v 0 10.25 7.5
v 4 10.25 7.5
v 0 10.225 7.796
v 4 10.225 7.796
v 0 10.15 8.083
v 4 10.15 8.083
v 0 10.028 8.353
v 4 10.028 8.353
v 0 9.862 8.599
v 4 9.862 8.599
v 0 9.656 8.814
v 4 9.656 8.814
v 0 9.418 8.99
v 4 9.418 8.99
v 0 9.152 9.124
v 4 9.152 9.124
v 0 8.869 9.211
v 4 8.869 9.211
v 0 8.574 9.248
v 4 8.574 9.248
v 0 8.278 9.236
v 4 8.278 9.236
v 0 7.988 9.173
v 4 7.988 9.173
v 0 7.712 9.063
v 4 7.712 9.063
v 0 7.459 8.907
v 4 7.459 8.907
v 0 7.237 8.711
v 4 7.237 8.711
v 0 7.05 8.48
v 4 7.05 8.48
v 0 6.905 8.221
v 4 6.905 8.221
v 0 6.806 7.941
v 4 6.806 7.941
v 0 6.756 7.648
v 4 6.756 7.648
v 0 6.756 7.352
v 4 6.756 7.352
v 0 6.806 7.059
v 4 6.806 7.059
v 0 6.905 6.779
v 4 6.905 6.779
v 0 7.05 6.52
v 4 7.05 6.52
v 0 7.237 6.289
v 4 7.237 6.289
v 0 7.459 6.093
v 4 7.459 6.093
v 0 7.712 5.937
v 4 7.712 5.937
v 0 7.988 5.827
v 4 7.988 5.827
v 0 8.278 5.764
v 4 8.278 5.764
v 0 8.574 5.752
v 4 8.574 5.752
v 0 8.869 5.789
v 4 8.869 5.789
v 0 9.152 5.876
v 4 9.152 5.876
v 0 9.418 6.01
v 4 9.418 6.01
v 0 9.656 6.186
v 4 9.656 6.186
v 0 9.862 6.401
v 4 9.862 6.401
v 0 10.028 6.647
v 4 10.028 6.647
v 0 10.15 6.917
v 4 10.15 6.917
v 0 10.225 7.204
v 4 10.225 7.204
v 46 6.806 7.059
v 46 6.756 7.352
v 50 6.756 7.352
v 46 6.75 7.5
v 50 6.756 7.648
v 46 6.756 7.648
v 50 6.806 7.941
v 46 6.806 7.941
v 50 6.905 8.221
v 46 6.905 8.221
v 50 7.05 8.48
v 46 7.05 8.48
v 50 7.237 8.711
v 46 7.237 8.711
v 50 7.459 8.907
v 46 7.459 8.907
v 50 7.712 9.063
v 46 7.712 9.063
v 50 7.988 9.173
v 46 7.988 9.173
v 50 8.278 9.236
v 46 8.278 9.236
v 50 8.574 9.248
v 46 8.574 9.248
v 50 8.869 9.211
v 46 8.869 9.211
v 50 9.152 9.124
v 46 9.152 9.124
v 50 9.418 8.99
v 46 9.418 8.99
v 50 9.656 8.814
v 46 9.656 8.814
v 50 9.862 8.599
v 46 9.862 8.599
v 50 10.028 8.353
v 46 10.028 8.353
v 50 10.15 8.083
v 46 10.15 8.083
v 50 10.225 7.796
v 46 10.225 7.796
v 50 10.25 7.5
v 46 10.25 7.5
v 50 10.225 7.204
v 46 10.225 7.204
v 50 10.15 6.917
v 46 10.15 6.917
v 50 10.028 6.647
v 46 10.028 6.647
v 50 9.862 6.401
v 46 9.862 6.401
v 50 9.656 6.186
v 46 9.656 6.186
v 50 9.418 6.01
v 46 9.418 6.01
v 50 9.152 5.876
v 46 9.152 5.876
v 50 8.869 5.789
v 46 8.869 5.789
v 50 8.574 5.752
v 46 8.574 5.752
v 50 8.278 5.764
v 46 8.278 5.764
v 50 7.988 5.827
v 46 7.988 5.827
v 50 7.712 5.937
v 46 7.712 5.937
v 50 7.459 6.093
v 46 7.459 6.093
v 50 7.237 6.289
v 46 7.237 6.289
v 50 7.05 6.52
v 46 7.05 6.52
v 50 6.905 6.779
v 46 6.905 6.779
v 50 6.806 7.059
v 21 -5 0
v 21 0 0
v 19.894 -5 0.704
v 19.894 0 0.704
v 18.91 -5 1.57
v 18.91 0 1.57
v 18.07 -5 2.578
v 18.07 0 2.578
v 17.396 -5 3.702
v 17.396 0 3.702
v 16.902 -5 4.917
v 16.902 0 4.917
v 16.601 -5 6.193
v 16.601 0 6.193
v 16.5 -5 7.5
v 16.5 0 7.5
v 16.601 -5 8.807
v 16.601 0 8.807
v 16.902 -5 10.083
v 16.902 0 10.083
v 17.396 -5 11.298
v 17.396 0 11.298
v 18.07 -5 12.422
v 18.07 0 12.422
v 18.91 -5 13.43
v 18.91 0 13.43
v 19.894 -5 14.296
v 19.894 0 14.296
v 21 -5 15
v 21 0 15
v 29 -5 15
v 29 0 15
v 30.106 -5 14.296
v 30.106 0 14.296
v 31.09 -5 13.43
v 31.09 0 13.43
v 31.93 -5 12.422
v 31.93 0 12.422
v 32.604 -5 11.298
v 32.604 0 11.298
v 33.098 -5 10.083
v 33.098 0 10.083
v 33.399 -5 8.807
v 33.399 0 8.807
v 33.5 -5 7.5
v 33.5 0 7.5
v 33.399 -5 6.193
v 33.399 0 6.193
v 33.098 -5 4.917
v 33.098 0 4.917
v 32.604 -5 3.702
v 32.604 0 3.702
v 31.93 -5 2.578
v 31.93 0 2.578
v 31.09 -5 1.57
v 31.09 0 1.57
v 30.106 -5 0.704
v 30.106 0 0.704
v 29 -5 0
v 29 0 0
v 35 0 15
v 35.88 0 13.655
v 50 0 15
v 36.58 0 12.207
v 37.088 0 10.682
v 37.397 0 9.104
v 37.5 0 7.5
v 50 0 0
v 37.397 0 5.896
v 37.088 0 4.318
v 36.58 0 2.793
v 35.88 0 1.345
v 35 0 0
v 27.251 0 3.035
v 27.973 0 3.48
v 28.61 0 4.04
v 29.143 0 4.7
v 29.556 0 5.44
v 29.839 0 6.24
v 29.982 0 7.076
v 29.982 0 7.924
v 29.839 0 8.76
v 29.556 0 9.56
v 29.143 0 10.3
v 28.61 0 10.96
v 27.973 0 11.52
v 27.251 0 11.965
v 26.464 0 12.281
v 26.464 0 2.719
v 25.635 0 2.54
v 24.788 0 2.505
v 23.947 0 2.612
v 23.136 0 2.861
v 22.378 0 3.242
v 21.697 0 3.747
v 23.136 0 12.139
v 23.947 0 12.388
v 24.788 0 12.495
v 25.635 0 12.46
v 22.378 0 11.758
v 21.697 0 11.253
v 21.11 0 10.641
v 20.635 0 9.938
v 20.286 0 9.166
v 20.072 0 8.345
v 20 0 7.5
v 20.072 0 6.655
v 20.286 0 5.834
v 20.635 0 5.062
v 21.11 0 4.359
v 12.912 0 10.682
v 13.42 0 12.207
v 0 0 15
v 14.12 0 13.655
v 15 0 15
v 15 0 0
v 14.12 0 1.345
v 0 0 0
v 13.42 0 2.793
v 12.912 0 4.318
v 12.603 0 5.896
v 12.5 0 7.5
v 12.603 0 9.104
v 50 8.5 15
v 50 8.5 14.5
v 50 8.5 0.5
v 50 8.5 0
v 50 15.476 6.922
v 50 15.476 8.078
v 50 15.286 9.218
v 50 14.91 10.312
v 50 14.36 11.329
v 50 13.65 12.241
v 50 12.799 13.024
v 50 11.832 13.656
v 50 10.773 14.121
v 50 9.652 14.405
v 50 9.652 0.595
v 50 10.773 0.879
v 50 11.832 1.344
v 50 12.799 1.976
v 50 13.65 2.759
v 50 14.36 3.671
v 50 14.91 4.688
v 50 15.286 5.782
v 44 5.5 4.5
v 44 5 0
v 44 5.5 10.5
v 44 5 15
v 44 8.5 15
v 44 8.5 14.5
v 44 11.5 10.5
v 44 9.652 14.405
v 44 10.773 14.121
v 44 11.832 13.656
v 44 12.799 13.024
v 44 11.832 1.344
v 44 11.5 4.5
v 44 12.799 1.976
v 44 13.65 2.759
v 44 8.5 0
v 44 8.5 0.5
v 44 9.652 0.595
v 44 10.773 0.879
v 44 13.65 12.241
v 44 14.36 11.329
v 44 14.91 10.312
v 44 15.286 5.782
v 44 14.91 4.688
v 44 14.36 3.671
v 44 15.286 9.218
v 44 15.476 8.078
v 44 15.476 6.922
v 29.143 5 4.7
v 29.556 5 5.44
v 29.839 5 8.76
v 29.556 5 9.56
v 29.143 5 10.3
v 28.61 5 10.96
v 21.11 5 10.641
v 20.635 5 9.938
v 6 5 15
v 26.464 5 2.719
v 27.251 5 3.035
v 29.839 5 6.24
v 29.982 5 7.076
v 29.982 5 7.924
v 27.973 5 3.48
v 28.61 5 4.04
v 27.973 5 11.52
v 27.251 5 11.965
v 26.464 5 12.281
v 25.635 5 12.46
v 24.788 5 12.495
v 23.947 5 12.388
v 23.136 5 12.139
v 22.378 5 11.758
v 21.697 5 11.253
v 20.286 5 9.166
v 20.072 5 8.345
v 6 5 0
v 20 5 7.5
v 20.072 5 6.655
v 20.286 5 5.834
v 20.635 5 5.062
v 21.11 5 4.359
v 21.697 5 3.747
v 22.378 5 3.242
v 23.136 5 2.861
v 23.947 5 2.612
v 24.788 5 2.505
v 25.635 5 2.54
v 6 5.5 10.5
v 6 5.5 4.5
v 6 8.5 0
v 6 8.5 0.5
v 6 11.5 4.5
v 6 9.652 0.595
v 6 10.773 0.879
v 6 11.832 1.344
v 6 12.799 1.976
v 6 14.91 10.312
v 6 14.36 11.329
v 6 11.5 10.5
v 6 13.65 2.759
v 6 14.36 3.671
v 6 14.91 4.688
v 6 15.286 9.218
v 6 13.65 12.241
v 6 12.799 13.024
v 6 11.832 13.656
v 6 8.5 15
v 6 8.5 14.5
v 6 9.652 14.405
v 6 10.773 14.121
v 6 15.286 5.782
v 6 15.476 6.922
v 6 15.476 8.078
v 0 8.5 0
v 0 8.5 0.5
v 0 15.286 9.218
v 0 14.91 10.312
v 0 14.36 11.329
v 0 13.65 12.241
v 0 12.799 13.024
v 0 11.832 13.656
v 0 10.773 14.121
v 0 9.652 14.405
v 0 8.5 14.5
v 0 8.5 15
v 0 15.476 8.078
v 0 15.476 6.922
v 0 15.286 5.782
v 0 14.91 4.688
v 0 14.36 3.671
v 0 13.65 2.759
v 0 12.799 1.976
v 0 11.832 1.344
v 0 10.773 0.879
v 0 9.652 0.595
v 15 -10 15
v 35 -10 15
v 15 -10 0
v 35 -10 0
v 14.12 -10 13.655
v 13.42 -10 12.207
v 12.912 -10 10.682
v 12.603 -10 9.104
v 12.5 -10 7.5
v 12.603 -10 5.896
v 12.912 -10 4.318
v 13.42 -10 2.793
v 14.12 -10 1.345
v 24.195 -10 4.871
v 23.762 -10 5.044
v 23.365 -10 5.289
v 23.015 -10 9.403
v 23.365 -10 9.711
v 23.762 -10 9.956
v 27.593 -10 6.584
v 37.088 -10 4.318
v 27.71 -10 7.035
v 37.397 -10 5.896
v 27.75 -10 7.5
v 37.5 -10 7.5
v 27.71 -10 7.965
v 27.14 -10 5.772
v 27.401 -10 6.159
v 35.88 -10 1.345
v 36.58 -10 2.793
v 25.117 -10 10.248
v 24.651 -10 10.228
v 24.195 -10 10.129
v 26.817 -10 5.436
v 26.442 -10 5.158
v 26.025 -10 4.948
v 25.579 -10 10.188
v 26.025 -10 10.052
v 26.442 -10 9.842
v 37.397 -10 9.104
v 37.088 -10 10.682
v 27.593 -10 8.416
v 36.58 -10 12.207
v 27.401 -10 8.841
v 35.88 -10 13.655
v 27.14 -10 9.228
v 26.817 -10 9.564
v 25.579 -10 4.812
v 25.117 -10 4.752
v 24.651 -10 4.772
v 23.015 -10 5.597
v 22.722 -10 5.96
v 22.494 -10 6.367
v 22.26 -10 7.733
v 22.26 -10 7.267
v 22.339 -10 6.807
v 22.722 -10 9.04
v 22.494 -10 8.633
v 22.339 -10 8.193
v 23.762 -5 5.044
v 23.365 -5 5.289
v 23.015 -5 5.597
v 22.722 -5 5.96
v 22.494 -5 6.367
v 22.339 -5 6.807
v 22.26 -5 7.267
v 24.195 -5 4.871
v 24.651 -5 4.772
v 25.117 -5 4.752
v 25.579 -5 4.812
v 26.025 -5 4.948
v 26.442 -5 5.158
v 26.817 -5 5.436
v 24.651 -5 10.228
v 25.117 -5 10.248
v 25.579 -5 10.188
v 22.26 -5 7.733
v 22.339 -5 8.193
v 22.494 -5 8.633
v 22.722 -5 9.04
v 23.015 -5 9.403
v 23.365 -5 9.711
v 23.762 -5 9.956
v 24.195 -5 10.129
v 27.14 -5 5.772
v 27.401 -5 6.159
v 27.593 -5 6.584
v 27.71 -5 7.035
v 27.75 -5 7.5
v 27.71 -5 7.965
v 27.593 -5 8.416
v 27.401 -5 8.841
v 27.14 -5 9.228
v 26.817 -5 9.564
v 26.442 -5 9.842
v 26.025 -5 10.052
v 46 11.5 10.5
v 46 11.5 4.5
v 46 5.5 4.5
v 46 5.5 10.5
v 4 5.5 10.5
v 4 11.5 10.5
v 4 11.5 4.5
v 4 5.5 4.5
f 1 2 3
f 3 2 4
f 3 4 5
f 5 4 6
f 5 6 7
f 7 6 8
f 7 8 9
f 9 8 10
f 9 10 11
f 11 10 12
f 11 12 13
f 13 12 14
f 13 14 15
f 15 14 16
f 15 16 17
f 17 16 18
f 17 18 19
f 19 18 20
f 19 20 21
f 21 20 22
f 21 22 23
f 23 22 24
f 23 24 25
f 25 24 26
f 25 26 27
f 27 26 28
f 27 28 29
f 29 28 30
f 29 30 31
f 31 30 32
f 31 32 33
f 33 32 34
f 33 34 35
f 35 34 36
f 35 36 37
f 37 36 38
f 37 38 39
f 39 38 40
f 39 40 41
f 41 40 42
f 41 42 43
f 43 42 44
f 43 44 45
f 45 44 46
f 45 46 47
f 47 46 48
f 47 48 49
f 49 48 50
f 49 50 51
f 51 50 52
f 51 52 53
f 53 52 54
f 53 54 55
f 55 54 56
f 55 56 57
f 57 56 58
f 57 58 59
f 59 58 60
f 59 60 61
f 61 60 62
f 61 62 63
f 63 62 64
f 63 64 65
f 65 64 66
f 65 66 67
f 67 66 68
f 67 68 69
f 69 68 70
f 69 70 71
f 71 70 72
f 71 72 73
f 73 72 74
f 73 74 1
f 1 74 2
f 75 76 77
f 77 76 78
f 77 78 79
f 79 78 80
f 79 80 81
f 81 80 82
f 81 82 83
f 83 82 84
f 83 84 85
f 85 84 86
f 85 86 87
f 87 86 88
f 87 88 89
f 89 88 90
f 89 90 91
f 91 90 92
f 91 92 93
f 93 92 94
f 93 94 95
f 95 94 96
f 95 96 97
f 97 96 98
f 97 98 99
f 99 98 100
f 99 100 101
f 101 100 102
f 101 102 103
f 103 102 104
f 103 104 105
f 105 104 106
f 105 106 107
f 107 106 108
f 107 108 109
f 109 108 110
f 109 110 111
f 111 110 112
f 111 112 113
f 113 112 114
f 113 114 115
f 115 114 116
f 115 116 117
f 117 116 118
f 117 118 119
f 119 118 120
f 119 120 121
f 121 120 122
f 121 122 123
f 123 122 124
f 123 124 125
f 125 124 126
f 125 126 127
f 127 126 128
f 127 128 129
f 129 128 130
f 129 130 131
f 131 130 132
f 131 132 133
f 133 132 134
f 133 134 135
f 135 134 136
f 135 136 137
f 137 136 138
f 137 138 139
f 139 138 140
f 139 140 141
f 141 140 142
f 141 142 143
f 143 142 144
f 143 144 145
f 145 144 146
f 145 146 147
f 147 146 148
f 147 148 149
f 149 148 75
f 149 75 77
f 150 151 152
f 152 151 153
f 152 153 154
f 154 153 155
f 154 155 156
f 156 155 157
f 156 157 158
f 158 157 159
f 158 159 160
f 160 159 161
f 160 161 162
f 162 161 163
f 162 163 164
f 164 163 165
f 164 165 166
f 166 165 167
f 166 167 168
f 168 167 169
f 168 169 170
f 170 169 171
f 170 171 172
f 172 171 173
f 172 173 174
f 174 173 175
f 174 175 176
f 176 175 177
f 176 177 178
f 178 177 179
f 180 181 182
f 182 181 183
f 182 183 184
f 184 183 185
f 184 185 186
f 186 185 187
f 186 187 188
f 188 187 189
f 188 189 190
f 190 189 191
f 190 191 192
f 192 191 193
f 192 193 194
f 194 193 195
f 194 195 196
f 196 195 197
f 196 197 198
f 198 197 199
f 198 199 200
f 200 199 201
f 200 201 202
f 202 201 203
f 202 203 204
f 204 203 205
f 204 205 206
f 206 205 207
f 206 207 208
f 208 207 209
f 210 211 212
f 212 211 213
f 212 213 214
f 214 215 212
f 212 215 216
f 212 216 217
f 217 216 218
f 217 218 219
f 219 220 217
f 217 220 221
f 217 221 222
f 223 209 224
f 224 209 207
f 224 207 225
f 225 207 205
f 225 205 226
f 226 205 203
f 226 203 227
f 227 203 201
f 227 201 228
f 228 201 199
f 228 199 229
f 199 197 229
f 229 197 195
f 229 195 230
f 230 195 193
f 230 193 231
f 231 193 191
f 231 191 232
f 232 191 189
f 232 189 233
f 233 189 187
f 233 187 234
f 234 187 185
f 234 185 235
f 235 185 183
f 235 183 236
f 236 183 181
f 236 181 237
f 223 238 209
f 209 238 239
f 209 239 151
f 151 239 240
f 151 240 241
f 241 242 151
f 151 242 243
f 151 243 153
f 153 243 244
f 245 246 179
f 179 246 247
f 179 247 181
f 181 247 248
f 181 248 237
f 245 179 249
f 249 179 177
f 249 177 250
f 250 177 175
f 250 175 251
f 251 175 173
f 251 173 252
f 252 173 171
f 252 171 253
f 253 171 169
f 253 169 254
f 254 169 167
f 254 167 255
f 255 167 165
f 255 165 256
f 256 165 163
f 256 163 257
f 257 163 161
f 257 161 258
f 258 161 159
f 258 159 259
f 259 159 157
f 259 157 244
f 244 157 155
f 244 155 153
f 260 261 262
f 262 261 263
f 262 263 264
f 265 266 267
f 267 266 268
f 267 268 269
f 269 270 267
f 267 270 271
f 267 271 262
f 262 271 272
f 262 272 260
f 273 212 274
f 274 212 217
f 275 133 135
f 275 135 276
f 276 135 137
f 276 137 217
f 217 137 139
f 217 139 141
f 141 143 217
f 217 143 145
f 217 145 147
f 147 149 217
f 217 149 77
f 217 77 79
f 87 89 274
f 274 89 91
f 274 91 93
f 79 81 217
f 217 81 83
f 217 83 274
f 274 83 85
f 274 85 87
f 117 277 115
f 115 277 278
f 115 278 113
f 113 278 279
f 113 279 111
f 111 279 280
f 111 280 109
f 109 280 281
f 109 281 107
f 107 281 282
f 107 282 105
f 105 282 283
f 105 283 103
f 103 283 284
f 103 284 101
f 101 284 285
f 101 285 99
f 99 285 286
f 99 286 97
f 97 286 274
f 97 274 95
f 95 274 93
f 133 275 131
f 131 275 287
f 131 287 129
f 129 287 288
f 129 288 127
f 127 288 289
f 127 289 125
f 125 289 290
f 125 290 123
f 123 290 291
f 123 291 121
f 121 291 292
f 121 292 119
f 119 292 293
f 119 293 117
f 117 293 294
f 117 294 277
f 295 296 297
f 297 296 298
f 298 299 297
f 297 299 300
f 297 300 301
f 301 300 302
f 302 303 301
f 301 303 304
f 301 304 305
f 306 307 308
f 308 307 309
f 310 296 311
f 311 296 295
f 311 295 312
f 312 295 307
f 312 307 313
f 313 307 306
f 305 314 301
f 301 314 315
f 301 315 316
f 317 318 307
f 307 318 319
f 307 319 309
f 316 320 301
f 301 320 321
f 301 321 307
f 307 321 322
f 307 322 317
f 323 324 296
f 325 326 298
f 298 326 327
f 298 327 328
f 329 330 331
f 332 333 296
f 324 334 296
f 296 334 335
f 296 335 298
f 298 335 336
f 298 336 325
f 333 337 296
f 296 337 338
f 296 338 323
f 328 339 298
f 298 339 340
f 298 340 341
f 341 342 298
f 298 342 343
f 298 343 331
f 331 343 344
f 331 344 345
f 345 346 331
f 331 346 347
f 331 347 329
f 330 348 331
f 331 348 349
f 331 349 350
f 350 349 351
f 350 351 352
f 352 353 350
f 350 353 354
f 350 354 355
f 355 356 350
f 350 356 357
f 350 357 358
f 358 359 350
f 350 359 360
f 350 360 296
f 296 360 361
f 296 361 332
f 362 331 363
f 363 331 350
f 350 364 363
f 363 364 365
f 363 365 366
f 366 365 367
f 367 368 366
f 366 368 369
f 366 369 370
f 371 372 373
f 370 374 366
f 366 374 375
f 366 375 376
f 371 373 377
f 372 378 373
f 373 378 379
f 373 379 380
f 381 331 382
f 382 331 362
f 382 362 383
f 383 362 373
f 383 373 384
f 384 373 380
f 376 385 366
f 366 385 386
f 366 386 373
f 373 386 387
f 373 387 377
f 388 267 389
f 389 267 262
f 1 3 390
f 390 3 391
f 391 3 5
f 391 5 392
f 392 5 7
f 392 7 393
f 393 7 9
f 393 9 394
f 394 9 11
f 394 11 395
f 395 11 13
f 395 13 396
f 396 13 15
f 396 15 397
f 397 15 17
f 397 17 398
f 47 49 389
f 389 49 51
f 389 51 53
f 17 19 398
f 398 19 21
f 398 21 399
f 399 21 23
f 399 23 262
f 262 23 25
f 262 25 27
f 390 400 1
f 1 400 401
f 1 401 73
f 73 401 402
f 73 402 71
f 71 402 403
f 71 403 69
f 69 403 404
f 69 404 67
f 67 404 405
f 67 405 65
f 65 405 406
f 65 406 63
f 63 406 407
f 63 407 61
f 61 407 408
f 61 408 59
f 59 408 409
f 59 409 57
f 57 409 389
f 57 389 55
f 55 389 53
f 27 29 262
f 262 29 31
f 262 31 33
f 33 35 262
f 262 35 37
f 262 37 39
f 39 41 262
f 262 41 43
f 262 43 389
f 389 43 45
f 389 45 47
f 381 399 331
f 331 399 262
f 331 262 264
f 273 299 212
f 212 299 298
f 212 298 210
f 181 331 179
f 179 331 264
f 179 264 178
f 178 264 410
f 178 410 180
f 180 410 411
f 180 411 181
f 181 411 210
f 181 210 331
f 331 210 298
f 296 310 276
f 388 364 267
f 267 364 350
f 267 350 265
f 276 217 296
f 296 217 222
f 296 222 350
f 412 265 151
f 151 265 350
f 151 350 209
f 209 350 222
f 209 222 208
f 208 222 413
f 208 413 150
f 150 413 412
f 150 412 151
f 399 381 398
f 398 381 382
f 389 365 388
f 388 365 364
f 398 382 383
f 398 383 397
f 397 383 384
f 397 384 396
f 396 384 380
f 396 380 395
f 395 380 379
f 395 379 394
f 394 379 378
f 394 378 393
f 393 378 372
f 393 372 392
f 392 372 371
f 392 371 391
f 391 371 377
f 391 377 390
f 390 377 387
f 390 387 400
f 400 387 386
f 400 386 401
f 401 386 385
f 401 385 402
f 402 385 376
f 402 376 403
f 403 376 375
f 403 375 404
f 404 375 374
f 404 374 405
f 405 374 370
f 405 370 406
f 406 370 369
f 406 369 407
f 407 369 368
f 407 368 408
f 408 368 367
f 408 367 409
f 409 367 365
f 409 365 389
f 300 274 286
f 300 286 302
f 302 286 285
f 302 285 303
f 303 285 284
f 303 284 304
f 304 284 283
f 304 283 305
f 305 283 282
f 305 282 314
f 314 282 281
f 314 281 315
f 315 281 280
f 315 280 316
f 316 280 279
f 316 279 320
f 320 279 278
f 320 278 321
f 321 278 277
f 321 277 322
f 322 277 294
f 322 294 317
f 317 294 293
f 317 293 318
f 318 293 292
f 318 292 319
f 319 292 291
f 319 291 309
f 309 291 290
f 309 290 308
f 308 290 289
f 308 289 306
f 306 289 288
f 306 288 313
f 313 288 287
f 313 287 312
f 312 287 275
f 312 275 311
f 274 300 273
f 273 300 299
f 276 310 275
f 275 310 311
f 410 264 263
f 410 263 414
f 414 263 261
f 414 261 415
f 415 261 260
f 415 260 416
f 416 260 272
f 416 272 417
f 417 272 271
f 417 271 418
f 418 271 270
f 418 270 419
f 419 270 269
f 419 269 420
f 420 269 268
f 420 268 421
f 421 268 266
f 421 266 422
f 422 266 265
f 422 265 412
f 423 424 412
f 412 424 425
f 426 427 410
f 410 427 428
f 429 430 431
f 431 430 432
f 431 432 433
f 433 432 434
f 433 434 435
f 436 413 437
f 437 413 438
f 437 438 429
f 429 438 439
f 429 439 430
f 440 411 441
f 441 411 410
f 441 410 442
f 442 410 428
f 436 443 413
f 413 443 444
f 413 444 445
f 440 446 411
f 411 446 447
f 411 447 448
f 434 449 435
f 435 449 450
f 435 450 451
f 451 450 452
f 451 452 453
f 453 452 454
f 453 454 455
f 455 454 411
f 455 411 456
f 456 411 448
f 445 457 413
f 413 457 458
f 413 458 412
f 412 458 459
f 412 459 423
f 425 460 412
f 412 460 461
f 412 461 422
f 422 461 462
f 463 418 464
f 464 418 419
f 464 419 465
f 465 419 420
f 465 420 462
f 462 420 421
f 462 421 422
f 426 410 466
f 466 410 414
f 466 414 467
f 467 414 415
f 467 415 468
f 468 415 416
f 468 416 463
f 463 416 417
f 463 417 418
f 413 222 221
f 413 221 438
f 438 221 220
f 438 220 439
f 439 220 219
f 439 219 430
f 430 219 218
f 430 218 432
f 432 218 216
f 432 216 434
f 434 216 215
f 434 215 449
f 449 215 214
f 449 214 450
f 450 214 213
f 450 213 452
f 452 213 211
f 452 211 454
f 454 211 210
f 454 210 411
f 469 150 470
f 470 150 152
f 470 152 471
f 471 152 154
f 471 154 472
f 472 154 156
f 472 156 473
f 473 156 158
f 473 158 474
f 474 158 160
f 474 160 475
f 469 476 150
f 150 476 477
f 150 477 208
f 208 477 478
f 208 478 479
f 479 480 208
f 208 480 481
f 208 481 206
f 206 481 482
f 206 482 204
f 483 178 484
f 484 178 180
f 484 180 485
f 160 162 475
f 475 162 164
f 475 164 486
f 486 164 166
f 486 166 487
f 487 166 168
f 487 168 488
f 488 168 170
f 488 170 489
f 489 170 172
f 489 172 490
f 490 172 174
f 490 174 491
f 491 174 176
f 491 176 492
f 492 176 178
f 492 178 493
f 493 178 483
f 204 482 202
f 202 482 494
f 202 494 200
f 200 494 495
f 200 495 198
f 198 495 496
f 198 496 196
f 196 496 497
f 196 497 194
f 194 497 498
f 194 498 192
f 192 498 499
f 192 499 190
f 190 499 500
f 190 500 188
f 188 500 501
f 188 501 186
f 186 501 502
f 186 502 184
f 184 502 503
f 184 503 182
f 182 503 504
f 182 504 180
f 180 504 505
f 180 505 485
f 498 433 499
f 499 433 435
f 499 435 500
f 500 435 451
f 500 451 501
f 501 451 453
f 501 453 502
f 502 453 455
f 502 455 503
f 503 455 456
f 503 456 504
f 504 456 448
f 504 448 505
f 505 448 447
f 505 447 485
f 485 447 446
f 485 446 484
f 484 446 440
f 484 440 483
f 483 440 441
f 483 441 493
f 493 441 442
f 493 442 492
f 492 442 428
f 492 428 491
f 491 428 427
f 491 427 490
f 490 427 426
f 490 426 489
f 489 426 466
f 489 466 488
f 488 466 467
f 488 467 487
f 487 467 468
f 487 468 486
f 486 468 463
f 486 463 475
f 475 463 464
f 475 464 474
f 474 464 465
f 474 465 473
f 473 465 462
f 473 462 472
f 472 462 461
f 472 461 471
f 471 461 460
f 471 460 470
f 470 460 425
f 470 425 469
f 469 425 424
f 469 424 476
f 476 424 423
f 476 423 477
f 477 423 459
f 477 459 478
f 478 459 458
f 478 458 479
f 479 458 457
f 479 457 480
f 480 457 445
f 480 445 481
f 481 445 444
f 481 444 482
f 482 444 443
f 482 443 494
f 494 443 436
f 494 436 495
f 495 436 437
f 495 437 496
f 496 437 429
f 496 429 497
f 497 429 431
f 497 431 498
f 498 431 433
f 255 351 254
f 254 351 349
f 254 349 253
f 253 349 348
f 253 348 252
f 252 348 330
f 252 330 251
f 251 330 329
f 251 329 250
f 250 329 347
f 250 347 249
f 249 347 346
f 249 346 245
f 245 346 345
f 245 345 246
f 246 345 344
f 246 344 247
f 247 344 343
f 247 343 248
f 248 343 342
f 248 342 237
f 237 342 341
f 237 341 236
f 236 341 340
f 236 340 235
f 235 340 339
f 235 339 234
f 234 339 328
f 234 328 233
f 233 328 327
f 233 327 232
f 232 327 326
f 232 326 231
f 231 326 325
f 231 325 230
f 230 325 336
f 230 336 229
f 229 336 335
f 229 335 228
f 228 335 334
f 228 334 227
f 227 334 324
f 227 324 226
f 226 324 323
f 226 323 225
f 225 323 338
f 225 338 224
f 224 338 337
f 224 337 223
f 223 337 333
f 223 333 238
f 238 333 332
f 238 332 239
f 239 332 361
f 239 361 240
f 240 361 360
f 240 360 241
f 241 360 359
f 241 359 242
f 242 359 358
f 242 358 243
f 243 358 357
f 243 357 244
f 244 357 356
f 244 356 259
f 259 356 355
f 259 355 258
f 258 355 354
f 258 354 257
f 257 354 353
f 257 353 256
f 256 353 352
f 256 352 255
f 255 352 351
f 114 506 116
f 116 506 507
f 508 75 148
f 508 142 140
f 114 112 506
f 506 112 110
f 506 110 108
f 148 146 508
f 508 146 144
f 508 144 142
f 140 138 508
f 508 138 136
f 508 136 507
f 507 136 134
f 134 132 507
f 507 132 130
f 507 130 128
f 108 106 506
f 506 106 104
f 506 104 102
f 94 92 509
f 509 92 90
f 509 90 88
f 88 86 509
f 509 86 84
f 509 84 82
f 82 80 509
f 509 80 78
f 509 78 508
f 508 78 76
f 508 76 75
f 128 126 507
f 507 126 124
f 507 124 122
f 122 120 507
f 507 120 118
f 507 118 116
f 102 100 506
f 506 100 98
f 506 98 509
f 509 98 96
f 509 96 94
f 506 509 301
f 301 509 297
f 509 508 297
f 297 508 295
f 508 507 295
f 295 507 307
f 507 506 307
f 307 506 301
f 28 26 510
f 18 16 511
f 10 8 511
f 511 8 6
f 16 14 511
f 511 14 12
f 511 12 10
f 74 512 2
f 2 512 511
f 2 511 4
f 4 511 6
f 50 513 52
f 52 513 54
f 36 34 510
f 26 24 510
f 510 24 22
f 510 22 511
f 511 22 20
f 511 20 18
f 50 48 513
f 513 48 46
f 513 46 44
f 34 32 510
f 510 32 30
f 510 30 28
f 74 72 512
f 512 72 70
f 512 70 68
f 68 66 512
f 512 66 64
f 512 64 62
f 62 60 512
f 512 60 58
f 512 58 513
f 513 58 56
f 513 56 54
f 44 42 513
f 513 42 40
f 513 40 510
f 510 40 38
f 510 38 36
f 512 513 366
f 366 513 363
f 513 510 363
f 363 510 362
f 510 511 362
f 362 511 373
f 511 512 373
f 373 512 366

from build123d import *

# Parameters (mm, degrees)
EXTRUDE_1_DEPTH     = 15
SKETCH_3_R          = 1.75
CUT_EXTRUDE_2_DEPTH = 55.598534779
EXTRUDE_2_DEPTH     = 10
EXTRUDE_START       = -5
EXTRUDE_3_DEPTH     = 5
CUT_EXTRUDE_5_REACH = 60.097
SKETCH_6_R          = 2.75
SKETCH_7_R          = 5
CUT_EXTRUDE_6_DEPTH = 5
SKETCH_10_W         = 6
SKETCH_10_H         = 6
CUT_EXTRUDE_7_DEPTH = 2
SKETCH_11_W         = 6
SKETCH_11_H         = 6
CUT_EXTRUDE_8_DEPTH = 2


with BuildPart() as part:
    # 草图1 → 凸台-拉伸1 (new body)
    with BuildSketch(Plane.XY):
        Polygon((0, 0), (0, 16), (6, 16), (6, 5), (44, 5), (44, 16), (50, 16), (50, 0), align=None)
    extrude(amount=EXTRUDE_1_DEPTH)

    # 草图3 → 切除-拉伸2 (cut, through all)
    with BuildSketch(Plane(origin=(50, 0, 0), x_dir=(0, 0, -1), z_dir=(1, 0, 0))):
        with Locations(Location((-7.5, 8.5, 0), (0, 0, 90))):
            Circle(SKETCH_3_R)
        with BuildLine():
            Line((-14.5, 8.5), (-23.066471686, 8.5))
            Line((-23.066471686, 8.5), (-23.066471686, 64.301280236))
            Line((-23.066471686, 64.301280236), (5.906378089, 64.301280236))
            Line((5.906378089, 64.301280236), (5.906378089, 8.5))
            Line((5.906378089, 8.5), (-0.5, 8.5))
            ThreePointArc((-0.5, 8.5), (-7.5, 15.5), (-14.5, 8.5))
        make_face()
    extrude(amount=-CUT_EXTRUDE_2_DEPTH, mode=Mode.SUBTRACT)

    # 草图8 → 凸台-拉伸2 (add)
    with BuildSketch(Plane.XZ):
        with BuildLine():
            Line((15, 15), (21, 15))
            ThreePointArc((21, 15), (16.5, 7.5), (21, 0))
            Line((21, 0), (15, 0))
            ThreePointArc((15, 0), (12.5, 7.5), (15, 15))
        make_face()
        with BuildLine():
            Line((29, 15), (35, 15))
            ThreePointArc((35, 15), (37.5, 7.5), (35, 0))
            Line((35, 0), (29, 0))
            ThreePointArc((29, 0), (33.5, 7.5), (29, 15))
        make_face()
    extrude(amount=EXTRUDE_2_DEPTH)

    # 草图9 → 凸台-拉伸3 (add)
    with BuildSketch(Plane.XZ.offset(10).offset(EXTRUDE_START)):
        with BuildLine():
            Line((21, 15), (29, 15))
            Line((29, 15), (35, 15))
            ThreePointArc((35, 15), (37.5, 7.5), (35, 0))
            Line((35, 0), (29, 0))
            Line((29, 0), (21, 0))
            Line((21, 0), (15, 0))
            ThreePointArc((15, 0), (12.5, 7.5), (15, 15))
            Line((15, 15), (21, 15))
        make_face()
    extrude(amount=EXTRUDE_3_DEPTH)

    # 切除-拉伸5: up to this face of the body (flat: up to its plane)
    cut_extrude_5_end = Plane(part.part.faces().sort_by_distance((25, 5, 7.5))[0])
    # 草图6 → 切除-拉伸5 (cut, up to the picked face)
    with BuildSketch(Plane.XZ.offset(10), mode=Mode.PRIVATE) as cut_extrude_5_sk1:
        with Locations((25, 7.5)):
            Circle(SKETCH_6_R)
    cut_extrude_5_tool1 = split(extrude(cut_extrude_5_sk1.sketch, amount=-CUT_EXTRUDE_5_REACH, mode=Mode.PRIVATE), bisect_by=cut_extrude_5_end, keep=Keep.BOTH, mode=Mode.PRIVATE)
    add(cut_extrude_5_tool1.solids().sort_by(Axis((25, -10, 7.5), (0, 1, 0)))[0], mode=Mode.SUBTRACT)

    # 草图7 → 切除-拉伸6 (cut)
    with BuildSketch(Plane(origin=(0, 5, 0), x_dir=(1, 0, 0), z_dir=(0, 1, 0))):
        with Locations(Location((25, -7.5, 0), (0, 0, 180))):
            Circle(SKETCH_7_R)
    extrude(amount=-CUT_EXTRUDE_6_DEPTH, mode=Mode.SUBTRACT)

    # 草图10 → 切除-拉伸7 (cut)
    with BuildSketch(Plane.ZY.offset(-44)):
        with Locations((7.5, 8.5)):
            Rectangle(SKETCH_10_W, SKETCH_10_H)
    extrude(amount=-CUT_EXTRUDE_7_DEPTH, mode=Mode.SUBTRACT)

    # 草图11 → 切除-拉伸8 (cut)
    with BuildSketch(Plane(origin=(6, 0, 0), x_dir=(0, 0, -1), z_dir=(1, 0, 0))):
        with Locations((-7.5, 8.5)):
            Rectangle(SKETCH_11_W, SKETCH_11_H)
    extrude(amount=-CUT_EXTRUDE_8_DEPTH, mode=Mode.SUBTRACT)


solid = part.part
